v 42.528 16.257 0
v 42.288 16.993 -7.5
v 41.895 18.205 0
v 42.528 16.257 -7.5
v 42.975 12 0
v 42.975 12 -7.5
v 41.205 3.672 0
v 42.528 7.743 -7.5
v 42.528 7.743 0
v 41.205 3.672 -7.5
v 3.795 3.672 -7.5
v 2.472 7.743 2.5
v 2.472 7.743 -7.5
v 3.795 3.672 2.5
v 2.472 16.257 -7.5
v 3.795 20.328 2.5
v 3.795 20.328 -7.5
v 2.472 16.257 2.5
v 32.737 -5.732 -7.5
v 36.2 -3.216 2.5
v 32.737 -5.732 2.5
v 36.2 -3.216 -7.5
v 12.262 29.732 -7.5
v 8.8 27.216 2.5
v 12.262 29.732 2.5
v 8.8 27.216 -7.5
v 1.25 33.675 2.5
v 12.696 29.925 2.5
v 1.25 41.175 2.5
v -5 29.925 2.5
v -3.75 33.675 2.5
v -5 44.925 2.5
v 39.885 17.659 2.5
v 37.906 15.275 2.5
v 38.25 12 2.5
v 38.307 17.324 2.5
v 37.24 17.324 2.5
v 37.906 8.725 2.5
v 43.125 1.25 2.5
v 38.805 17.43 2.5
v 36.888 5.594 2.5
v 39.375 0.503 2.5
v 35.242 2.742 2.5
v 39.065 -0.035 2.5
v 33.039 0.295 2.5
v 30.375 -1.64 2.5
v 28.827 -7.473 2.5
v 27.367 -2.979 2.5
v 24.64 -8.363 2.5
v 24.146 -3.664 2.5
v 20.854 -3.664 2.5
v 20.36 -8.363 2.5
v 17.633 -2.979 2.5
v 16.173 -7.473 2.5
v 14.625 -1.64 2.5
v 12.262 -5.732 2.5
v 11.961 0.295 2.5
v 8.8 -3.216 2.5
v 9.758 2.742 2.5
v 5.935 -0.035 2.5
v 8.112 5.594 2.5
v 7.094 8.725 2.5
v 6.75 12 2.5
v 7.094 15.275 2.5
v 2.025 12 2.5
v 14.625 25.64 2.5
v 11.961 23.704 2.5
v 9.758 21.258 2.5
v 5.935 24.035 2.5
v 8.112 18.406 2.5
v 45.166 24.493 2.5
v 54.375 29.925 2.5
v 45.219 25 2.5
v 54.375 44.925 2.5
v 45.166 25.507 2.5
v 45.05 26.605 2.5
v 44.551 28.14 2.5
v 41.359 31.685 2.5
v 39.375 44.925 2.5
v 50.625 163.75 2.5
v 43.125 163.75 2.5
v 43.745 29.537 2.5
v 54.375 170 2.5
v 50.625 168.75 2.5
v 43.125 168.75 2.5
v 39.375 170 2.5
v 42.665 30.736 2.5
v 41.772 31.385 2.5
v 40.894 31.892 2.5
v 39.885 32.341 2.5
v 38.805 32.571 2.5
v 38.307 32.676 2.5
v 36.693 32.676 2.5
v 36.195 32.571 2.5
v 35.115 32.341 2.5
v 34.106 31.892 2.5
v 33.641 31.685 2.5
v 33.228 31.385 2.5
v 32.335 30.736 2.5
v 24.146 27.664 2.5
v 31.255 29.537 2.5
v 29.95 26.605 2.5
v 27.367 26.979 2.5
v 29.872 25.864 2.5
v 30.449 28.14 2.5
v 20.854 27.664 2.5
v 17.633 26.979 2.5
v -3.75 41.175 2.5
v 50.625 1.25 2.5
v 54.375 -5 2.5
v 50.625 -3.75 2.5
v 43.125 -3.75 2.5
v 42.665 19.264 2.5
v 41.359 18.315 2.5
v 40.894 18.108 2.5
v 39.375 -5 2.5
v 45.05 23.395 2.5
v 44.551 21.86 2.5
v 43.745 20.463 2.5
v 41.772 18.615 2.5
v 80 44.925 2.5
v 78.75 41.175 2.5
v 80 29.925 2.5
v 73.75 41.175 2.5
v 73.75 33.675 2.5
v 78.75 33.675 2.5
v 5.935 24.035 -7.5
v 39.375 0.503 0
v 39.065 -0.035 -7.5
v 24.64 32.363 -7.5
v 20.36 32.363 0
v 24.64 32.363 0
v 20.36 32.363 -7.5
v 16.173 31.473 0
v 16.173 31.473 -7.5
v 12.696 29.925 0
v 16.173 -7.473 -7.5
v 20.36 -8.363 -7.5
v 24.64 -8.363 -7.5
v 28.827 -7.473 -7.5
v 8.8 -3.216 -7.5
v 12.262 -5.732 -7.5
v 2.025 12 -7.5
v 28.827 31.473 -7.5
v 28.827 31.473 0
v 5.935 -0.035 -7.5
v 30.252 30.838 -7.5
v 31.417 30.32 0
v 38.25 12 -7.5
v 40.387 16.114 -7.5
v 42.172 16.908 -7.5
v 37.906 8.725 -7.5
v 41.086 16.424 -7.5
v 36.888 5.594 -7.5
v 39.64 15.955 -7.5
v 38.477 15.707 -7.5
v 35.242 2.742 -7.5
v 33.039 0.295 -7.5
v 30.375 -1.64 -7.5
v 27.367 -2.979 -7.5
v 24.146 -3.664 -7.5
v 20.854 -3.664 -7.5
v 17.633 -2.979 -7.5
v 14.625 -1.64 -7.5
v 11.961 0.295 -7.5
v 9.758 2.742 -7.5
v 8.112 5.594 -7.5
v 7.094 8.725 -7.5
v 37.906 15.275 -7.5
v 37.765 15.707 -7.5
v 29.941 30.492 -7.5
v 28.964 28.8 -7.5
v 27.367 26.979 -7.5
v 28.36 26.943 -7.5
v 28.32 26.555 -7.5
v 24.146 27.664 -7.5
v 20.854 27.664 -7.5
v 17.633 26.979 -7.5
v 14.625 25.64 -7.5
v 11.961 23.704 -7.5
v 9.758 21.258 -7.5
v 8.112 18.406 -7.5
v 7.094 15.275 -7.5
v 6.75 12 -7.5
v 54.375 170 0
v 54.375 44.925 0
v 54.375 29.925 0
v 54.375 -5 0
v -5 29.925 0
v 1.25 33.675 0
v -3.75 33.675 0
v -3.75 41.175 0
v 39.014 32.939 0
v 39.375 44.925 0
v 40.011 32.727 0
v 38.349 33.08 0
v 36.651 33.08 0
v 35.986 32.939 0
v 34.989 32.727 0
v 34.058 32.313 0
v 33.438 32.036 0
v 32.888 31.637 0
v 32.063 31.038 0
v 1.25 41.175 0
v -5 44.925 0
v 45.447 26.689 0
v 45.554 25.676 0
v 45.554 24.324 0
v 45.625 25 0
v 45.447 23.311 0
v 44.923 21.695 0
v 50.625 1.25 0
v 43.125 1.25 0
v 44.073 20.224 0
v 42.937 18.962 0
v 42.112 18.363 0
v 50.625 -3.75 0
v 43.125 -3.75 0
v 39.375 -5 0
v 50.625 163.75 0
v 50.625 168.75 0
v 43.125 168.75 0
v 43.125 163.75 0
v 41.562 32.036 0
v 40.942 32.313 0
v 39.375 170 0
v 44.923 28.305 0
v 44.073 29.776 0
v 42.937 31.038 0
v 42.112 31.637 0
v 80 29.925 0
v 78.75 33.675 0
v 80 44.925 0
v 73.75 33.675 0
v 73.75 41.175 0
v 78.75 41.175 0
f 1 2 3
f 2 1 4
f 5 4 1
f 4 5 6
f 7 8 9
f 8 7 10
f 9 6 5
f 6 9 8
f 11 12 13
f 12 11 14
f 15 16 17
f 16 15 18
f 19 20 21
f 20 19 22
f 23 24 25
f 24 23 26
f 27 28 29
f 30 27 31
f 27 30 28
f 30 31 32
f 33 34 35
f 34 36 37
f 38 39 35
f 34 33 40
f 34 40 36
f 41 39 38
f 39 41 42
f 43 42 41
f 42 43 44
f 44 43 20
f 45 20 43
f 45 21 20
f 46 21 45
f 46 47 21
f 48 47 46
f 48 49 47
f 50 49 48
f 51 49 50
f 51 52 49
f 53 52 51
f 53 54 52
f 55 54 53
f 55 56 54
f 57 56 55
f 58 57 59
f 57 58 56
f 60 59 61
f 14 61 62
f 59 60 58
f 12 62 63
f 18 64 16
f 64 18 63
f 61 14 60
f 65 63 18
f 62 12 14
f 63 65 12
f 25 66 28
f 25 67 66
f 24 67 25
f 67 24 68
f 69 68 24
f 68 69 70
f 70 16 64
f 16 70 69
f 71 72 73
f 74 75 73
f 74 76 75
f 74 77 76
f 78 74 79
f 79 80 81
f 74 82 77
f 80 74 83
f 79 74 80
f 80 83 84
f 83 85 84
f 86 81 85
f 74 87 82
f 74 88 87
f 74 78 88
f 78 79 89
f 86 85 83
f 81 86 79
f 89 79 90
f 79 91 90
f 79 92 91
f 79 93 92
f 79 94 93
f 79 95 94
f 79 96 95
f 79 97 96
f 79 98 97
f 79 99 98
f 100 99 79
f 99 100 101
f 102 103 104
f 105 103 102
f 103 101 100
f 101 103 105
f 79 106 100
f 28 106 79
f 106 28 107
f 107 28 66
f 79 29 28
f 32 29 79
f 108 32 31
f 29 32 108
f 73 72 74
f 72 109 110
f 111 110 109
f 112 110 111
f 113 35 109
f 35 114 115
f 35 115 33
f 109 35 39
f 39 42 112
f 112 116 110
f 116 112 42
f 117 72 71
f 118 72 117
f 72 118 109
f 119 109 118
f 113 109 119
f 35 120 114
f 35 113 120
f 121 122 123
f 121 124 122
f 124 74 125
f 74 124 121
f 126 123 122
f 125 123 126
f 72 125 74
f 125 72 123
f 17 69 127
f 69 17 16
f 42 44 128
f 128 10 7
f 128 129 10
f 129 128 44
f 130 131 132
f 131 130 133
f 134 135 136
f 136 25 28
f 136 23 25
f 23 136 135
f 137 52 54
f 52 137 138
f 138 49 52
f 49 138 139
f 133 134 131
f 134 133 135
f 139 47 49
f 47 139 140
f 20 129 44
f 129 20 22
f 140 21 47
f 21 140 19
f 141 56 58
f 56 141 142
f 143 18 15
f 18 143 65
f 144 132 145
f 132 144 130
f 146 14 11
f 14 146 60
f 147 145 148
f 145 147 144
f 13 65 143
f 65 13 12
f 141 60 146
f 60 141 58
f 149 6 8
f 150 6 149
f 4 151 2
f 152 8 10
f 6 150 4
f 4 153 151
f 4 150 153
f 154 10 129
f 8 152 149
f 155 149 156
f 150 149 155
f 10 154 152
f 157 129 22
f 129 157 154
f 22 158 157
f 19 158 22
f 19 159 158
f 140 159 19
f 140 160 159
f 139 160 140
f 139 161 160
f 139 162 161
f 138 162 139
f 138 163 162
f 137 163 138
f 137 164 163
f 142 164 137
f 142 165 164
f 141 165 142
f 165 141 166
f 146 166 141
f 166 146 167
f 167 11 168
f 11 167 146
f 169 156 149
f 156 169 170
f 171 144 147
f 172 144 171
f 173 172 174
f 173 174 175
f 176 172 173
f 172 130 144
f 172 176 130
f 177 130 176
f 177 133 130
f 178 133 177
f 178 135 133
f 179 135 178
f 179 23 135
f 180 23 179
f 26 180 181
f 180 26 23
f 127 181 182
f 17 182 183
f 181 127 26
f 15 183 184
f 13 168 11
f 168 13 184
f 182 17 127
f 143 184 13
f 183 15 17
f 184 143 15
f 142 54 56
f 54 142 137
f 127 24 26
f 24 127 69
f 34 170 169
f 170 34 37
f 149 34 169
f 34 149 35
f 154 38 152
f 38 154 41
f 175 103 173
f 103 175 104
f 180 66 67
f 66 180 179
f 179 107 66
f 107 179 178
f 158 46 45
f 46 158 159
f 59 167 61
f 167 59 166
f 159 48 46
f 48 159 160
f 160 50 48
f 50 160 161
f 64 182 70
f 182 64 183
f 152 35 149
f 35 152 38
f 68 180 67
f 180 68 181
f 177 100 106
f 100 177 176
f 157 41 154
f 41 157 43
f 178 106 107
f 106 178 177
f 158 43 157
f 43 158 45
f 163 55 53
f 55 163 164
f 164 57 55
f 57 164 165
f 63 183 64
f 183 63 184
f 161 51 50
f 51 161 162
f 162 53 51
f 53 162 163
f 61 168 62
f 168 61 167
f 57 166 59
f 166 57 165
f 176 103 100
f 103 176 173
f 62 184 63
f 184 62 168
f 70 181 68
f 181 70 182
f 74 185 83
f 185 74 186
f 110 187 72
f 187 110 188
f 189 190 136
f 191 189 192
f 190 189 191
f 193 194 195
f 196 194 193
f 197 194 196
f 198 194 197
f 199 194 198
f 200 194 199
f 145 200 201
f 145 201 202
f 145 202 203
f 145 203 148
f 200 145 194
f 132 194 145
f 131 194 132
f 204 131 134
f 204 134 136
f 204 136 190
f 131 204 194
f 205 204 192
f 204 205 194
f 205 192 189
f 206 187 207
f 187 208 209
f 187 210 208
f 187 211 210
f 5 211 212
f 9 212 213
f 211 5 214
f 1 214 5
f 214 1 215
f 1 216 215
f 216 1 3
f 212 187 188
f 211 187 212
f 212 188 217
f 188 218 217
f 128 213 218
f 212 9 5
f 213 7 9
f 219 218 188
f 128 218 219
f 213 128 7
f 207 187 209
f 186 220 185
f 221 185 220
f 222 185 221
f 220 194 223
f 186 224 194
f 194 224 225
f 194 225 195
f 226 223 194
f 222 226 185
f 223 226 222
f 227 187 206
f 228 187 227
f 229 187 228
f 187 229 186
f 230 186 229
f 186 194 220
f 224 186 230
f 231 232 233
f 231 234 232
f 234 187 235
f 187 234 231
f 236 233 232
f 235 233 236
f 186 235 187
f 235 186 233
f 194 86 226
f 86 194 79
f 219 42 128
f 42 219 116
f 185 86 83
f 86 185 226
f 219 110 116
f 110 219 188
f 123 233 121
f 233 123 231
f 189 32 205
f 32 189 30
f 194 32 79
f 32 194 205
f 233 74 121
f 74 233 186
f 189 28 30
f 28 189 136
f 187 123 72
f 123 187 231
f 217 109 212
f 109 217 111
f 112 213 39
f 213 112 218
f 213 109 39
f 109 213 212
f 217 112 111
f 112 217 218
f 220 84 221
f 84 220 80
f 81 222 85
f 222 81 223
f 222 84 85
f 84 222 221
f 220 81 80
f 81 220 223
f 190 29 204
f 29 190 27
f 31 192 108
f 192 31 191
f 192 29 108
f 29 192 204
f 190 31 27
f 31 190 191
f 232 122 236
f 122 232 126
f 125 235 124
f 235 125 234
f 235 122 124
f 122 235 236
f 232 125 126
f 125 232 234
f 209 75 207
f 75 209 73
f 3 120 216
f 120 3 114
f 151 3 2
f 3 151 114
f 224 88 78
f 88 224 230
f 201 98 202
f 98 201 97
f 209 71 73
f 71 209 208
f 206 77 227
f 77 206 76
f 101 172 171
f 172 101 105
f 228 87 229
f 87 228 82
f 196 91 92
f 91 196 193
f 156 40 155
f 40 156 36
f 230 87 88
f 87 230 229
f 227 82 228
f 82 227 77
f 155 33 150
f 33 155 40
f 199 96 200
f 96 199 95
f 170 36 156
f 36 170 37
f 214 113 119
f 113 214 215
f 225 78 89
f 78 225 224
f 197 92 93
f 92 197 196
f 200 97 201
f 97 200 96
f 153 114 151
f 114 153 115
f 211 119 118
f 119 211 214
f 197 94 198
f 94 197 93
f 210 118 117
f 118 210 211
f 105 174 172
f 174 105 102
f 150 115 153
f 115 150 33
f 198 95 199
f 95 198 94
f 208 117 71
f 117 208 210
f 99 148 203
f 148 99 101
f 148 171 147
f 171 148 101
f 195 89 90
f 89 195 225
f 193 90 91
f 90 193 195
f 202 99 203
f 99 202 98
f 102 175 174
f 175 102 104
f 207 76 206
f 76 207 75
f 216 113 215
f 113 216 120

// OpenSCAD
monocular_diameter = 31.5;
monocular_depth = 10;

phone_width = 75;
phone_height = 165;
phone_depth = 2.5;
phone_strip = 15;
phone_tooth = 5;

cam_x = 22.5;
cam_y = 12;

finger_print_diameter = 13;
finger_print_x = 37.5;
finger_print_y = 25;

clip_height = 12;
clip_length = 5;

module monocular() {
    //holder for the monocular
    difference() {
        cylinder(d = 1.3 * monocular_diameter, h = monocular_depth );
        translate([0,0, -0.5*monocular_depth]) cylinder(d = monocular_diameter, h = 2*monocular_depth );
    }
}

module phone() {
    //attachement to the phone
    difference() {
        union() {
            //vertical bar
            translate([ 1.25*monocular_diameter, -phone_tooth, 0])
            cube([phone_strip, phone_height+2*phone_tooth, phone_depth]);
            
            //horizontal bar
            translate([ -phone_tooth, 0.95 * monocular_diameter, 0])
            cube([phone_width + 2*phone_tooth, phone_strip,  phone_depth]);
        }
    
        //holes for teeth: upper
        translate([1.25*monocular_diameter+0.25*phone_strip, -0.75*phone_tooth, -2*phone_depth])
        cube([0.5*phone_strip, phone_tooth, 5*phone_depth]);
    
        //holes for teeth: lower
        translate([1.25*monocular_diameter+0.25*phone_strip, phone_height-0.25*phone_tooth, -2*phone_depth])
        cube([0.5*phone_strip, phone_tooth, 5*phone_depth]);
    
        //holes for teeth: right
        translate([-0.75*phone_tooth, 0.95*monocular_diameter+0.25*phone_strip, -2*phone_depth])
        cube([phone_tooth, 0.5*phone_strip, 5*phone_depth]);
    
        //holes for teeth: left
        translate([phone_width-0.25*phone_tooth, 0.95*monocular_diameter+0.25*phone_strip, -2*phone_depth])
        cube([phone_tooth, 0.5*phone_strip, 5*phone_depth]);
    } 
}

module finger_print() {
    cylinder( d1 = 2*finger_print_diameter, d2 = finger_print_diameter, h = 4 * max( monocular_depth, phone_depth ) );
}

difference() {
    union() {
        translate([cam_x, cam_y, phone_depth-monocular_depth]) monocular();
        phone();
    }
    translate([finger_print_x, finger_print_y, -3*max( monocular_depth, phone_depth) ])
        finger_print();
}
